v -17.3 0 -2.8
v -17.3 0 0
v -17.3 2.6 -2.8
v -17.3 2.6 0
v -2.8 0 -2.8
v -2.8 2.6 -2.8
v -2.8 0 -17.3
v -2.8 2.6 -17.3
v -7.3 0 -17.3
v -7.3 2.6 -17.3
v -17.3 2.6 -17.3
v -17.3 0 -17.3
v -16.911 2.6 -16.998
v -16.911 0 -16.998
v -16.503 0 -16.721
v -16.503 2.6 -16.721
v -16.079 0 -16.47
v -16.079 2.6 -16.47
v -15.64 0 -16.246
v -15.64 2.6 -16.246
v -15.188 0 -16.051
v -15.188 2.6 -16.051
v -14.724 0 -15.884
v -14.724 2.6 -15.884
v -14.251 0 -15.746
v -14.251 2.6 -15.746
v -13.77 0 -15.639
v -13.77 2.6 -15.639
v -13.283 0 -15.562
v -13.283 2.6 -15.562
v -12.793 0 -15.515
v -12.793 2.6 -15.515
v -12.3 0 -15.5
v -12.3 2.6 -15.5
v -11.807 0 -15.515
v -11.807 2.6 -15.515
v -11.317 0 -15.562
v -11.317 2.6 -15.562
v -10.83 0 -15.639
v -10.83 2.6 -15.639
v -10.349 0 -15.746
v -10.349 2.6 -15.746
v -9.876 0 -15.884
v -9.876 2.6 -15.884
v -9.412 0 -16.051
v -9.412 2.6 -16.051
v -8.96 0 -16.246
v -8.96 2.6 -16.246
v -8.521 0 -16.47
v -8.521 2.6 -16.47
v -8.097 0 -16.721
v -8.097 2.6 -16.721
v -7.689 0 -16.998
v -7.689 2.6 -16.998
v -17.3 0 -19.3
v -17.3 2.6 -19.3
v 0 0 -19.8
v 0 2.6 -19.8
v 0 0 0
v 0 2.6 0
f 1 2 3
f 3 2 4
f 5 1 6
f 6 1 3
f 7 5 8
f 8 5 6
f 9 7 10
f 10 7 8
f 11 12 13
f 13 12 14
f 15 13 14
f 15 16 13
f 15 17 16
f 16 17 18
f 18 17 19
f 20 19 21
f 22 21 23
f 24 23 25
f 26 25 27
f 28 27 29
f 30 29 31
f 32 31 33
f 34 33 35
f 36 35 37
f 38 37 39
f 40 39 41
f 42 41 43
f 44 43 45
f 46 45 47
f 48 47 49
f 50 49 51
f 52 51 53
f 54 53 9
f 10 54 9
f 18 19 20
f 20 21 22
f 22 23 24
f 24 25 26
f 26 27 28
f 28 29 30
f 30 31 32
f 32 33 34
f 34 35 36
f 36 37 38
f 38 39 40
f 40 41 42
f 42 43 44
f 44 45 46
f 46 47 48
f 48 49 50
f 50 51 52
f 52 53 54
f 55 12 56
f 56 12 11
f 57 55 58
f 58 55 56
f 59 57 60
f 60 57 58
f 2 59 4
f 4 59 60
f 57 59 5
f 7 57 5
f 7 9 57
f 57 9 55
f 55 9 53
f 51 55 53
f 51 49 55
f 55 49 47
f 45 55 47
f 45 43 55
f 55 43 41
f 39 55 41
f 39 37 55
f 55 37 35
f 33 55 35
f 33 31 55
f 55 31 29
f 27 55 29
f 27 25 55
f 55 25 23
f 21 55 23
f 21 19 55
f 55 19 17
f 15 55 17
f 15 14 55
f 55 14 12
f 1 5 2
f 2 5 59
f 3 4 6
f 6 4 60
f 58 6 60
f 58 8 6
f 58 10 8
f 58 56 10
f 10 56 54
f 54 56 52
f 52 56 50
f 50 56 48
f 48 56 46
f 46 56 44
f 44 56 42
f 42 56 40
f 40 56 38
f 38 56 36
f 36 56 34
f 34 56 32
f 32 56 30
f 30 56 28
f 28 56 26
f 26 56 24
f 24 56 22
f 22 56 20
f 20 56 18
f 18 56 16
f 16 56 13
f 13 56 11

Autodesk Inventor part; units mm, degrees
ref_plane "YZ Plane" through (0, 0, 0) normal (1, 0, 0) x (0, 1, 0)
ref_plane "XZ Plane" through (0, 0, 0) normal (0, 1, 0) x (-1, 0, 0)
ref_plane "XY Plane" through (0, 0, 0) normal (0, 0, 1) x (1, 0, 0)
sketch "Sketch1" plane through (0, 0, 0) normal (0, 1, 0) x (-1, 0, 0)
  line L0 (0, 0) -> (17.3, 0)
  line L1 (17.3, 0) -> (17.3, -2.8)
  line L2 (0, 0) -> (0, -19.8)
  line L3 (7.3, -17.3) -> (2.8, -17.3)
  line L4 (2.8, -17.3) -> (2.8, -2.8)
  line L5 (2.8, -2.8) -> (17.3, -2.8)
  arc A0 (17.3, -17.3) -> (7.3, -17.3) centre (12.3, -23.3444) ccw
  line L6 (7.3, -17.3) -> (18.5004, -17.3) construction
  line L7 (17.3, -17.3) -> (17.3, -19.3)
  line L8 (17.3, -19.3) -> (0, -19.8)
  point P0 (12.3, -15.5)
  dimension "d1" = 2.8
  dimension "d3" = 2.8
  dimension "d11" = 10
  dimension "d12" = 4.5
  dimension "d13" = 14.5
  dimension "d19" = 2
  dimension "d20" = 19.8
  dimension "d22" = 1.8
extrude "Extrusion1" add sketch "Sketch1" along normal blind 2.6
properties part number "Cuvette_retainer"
